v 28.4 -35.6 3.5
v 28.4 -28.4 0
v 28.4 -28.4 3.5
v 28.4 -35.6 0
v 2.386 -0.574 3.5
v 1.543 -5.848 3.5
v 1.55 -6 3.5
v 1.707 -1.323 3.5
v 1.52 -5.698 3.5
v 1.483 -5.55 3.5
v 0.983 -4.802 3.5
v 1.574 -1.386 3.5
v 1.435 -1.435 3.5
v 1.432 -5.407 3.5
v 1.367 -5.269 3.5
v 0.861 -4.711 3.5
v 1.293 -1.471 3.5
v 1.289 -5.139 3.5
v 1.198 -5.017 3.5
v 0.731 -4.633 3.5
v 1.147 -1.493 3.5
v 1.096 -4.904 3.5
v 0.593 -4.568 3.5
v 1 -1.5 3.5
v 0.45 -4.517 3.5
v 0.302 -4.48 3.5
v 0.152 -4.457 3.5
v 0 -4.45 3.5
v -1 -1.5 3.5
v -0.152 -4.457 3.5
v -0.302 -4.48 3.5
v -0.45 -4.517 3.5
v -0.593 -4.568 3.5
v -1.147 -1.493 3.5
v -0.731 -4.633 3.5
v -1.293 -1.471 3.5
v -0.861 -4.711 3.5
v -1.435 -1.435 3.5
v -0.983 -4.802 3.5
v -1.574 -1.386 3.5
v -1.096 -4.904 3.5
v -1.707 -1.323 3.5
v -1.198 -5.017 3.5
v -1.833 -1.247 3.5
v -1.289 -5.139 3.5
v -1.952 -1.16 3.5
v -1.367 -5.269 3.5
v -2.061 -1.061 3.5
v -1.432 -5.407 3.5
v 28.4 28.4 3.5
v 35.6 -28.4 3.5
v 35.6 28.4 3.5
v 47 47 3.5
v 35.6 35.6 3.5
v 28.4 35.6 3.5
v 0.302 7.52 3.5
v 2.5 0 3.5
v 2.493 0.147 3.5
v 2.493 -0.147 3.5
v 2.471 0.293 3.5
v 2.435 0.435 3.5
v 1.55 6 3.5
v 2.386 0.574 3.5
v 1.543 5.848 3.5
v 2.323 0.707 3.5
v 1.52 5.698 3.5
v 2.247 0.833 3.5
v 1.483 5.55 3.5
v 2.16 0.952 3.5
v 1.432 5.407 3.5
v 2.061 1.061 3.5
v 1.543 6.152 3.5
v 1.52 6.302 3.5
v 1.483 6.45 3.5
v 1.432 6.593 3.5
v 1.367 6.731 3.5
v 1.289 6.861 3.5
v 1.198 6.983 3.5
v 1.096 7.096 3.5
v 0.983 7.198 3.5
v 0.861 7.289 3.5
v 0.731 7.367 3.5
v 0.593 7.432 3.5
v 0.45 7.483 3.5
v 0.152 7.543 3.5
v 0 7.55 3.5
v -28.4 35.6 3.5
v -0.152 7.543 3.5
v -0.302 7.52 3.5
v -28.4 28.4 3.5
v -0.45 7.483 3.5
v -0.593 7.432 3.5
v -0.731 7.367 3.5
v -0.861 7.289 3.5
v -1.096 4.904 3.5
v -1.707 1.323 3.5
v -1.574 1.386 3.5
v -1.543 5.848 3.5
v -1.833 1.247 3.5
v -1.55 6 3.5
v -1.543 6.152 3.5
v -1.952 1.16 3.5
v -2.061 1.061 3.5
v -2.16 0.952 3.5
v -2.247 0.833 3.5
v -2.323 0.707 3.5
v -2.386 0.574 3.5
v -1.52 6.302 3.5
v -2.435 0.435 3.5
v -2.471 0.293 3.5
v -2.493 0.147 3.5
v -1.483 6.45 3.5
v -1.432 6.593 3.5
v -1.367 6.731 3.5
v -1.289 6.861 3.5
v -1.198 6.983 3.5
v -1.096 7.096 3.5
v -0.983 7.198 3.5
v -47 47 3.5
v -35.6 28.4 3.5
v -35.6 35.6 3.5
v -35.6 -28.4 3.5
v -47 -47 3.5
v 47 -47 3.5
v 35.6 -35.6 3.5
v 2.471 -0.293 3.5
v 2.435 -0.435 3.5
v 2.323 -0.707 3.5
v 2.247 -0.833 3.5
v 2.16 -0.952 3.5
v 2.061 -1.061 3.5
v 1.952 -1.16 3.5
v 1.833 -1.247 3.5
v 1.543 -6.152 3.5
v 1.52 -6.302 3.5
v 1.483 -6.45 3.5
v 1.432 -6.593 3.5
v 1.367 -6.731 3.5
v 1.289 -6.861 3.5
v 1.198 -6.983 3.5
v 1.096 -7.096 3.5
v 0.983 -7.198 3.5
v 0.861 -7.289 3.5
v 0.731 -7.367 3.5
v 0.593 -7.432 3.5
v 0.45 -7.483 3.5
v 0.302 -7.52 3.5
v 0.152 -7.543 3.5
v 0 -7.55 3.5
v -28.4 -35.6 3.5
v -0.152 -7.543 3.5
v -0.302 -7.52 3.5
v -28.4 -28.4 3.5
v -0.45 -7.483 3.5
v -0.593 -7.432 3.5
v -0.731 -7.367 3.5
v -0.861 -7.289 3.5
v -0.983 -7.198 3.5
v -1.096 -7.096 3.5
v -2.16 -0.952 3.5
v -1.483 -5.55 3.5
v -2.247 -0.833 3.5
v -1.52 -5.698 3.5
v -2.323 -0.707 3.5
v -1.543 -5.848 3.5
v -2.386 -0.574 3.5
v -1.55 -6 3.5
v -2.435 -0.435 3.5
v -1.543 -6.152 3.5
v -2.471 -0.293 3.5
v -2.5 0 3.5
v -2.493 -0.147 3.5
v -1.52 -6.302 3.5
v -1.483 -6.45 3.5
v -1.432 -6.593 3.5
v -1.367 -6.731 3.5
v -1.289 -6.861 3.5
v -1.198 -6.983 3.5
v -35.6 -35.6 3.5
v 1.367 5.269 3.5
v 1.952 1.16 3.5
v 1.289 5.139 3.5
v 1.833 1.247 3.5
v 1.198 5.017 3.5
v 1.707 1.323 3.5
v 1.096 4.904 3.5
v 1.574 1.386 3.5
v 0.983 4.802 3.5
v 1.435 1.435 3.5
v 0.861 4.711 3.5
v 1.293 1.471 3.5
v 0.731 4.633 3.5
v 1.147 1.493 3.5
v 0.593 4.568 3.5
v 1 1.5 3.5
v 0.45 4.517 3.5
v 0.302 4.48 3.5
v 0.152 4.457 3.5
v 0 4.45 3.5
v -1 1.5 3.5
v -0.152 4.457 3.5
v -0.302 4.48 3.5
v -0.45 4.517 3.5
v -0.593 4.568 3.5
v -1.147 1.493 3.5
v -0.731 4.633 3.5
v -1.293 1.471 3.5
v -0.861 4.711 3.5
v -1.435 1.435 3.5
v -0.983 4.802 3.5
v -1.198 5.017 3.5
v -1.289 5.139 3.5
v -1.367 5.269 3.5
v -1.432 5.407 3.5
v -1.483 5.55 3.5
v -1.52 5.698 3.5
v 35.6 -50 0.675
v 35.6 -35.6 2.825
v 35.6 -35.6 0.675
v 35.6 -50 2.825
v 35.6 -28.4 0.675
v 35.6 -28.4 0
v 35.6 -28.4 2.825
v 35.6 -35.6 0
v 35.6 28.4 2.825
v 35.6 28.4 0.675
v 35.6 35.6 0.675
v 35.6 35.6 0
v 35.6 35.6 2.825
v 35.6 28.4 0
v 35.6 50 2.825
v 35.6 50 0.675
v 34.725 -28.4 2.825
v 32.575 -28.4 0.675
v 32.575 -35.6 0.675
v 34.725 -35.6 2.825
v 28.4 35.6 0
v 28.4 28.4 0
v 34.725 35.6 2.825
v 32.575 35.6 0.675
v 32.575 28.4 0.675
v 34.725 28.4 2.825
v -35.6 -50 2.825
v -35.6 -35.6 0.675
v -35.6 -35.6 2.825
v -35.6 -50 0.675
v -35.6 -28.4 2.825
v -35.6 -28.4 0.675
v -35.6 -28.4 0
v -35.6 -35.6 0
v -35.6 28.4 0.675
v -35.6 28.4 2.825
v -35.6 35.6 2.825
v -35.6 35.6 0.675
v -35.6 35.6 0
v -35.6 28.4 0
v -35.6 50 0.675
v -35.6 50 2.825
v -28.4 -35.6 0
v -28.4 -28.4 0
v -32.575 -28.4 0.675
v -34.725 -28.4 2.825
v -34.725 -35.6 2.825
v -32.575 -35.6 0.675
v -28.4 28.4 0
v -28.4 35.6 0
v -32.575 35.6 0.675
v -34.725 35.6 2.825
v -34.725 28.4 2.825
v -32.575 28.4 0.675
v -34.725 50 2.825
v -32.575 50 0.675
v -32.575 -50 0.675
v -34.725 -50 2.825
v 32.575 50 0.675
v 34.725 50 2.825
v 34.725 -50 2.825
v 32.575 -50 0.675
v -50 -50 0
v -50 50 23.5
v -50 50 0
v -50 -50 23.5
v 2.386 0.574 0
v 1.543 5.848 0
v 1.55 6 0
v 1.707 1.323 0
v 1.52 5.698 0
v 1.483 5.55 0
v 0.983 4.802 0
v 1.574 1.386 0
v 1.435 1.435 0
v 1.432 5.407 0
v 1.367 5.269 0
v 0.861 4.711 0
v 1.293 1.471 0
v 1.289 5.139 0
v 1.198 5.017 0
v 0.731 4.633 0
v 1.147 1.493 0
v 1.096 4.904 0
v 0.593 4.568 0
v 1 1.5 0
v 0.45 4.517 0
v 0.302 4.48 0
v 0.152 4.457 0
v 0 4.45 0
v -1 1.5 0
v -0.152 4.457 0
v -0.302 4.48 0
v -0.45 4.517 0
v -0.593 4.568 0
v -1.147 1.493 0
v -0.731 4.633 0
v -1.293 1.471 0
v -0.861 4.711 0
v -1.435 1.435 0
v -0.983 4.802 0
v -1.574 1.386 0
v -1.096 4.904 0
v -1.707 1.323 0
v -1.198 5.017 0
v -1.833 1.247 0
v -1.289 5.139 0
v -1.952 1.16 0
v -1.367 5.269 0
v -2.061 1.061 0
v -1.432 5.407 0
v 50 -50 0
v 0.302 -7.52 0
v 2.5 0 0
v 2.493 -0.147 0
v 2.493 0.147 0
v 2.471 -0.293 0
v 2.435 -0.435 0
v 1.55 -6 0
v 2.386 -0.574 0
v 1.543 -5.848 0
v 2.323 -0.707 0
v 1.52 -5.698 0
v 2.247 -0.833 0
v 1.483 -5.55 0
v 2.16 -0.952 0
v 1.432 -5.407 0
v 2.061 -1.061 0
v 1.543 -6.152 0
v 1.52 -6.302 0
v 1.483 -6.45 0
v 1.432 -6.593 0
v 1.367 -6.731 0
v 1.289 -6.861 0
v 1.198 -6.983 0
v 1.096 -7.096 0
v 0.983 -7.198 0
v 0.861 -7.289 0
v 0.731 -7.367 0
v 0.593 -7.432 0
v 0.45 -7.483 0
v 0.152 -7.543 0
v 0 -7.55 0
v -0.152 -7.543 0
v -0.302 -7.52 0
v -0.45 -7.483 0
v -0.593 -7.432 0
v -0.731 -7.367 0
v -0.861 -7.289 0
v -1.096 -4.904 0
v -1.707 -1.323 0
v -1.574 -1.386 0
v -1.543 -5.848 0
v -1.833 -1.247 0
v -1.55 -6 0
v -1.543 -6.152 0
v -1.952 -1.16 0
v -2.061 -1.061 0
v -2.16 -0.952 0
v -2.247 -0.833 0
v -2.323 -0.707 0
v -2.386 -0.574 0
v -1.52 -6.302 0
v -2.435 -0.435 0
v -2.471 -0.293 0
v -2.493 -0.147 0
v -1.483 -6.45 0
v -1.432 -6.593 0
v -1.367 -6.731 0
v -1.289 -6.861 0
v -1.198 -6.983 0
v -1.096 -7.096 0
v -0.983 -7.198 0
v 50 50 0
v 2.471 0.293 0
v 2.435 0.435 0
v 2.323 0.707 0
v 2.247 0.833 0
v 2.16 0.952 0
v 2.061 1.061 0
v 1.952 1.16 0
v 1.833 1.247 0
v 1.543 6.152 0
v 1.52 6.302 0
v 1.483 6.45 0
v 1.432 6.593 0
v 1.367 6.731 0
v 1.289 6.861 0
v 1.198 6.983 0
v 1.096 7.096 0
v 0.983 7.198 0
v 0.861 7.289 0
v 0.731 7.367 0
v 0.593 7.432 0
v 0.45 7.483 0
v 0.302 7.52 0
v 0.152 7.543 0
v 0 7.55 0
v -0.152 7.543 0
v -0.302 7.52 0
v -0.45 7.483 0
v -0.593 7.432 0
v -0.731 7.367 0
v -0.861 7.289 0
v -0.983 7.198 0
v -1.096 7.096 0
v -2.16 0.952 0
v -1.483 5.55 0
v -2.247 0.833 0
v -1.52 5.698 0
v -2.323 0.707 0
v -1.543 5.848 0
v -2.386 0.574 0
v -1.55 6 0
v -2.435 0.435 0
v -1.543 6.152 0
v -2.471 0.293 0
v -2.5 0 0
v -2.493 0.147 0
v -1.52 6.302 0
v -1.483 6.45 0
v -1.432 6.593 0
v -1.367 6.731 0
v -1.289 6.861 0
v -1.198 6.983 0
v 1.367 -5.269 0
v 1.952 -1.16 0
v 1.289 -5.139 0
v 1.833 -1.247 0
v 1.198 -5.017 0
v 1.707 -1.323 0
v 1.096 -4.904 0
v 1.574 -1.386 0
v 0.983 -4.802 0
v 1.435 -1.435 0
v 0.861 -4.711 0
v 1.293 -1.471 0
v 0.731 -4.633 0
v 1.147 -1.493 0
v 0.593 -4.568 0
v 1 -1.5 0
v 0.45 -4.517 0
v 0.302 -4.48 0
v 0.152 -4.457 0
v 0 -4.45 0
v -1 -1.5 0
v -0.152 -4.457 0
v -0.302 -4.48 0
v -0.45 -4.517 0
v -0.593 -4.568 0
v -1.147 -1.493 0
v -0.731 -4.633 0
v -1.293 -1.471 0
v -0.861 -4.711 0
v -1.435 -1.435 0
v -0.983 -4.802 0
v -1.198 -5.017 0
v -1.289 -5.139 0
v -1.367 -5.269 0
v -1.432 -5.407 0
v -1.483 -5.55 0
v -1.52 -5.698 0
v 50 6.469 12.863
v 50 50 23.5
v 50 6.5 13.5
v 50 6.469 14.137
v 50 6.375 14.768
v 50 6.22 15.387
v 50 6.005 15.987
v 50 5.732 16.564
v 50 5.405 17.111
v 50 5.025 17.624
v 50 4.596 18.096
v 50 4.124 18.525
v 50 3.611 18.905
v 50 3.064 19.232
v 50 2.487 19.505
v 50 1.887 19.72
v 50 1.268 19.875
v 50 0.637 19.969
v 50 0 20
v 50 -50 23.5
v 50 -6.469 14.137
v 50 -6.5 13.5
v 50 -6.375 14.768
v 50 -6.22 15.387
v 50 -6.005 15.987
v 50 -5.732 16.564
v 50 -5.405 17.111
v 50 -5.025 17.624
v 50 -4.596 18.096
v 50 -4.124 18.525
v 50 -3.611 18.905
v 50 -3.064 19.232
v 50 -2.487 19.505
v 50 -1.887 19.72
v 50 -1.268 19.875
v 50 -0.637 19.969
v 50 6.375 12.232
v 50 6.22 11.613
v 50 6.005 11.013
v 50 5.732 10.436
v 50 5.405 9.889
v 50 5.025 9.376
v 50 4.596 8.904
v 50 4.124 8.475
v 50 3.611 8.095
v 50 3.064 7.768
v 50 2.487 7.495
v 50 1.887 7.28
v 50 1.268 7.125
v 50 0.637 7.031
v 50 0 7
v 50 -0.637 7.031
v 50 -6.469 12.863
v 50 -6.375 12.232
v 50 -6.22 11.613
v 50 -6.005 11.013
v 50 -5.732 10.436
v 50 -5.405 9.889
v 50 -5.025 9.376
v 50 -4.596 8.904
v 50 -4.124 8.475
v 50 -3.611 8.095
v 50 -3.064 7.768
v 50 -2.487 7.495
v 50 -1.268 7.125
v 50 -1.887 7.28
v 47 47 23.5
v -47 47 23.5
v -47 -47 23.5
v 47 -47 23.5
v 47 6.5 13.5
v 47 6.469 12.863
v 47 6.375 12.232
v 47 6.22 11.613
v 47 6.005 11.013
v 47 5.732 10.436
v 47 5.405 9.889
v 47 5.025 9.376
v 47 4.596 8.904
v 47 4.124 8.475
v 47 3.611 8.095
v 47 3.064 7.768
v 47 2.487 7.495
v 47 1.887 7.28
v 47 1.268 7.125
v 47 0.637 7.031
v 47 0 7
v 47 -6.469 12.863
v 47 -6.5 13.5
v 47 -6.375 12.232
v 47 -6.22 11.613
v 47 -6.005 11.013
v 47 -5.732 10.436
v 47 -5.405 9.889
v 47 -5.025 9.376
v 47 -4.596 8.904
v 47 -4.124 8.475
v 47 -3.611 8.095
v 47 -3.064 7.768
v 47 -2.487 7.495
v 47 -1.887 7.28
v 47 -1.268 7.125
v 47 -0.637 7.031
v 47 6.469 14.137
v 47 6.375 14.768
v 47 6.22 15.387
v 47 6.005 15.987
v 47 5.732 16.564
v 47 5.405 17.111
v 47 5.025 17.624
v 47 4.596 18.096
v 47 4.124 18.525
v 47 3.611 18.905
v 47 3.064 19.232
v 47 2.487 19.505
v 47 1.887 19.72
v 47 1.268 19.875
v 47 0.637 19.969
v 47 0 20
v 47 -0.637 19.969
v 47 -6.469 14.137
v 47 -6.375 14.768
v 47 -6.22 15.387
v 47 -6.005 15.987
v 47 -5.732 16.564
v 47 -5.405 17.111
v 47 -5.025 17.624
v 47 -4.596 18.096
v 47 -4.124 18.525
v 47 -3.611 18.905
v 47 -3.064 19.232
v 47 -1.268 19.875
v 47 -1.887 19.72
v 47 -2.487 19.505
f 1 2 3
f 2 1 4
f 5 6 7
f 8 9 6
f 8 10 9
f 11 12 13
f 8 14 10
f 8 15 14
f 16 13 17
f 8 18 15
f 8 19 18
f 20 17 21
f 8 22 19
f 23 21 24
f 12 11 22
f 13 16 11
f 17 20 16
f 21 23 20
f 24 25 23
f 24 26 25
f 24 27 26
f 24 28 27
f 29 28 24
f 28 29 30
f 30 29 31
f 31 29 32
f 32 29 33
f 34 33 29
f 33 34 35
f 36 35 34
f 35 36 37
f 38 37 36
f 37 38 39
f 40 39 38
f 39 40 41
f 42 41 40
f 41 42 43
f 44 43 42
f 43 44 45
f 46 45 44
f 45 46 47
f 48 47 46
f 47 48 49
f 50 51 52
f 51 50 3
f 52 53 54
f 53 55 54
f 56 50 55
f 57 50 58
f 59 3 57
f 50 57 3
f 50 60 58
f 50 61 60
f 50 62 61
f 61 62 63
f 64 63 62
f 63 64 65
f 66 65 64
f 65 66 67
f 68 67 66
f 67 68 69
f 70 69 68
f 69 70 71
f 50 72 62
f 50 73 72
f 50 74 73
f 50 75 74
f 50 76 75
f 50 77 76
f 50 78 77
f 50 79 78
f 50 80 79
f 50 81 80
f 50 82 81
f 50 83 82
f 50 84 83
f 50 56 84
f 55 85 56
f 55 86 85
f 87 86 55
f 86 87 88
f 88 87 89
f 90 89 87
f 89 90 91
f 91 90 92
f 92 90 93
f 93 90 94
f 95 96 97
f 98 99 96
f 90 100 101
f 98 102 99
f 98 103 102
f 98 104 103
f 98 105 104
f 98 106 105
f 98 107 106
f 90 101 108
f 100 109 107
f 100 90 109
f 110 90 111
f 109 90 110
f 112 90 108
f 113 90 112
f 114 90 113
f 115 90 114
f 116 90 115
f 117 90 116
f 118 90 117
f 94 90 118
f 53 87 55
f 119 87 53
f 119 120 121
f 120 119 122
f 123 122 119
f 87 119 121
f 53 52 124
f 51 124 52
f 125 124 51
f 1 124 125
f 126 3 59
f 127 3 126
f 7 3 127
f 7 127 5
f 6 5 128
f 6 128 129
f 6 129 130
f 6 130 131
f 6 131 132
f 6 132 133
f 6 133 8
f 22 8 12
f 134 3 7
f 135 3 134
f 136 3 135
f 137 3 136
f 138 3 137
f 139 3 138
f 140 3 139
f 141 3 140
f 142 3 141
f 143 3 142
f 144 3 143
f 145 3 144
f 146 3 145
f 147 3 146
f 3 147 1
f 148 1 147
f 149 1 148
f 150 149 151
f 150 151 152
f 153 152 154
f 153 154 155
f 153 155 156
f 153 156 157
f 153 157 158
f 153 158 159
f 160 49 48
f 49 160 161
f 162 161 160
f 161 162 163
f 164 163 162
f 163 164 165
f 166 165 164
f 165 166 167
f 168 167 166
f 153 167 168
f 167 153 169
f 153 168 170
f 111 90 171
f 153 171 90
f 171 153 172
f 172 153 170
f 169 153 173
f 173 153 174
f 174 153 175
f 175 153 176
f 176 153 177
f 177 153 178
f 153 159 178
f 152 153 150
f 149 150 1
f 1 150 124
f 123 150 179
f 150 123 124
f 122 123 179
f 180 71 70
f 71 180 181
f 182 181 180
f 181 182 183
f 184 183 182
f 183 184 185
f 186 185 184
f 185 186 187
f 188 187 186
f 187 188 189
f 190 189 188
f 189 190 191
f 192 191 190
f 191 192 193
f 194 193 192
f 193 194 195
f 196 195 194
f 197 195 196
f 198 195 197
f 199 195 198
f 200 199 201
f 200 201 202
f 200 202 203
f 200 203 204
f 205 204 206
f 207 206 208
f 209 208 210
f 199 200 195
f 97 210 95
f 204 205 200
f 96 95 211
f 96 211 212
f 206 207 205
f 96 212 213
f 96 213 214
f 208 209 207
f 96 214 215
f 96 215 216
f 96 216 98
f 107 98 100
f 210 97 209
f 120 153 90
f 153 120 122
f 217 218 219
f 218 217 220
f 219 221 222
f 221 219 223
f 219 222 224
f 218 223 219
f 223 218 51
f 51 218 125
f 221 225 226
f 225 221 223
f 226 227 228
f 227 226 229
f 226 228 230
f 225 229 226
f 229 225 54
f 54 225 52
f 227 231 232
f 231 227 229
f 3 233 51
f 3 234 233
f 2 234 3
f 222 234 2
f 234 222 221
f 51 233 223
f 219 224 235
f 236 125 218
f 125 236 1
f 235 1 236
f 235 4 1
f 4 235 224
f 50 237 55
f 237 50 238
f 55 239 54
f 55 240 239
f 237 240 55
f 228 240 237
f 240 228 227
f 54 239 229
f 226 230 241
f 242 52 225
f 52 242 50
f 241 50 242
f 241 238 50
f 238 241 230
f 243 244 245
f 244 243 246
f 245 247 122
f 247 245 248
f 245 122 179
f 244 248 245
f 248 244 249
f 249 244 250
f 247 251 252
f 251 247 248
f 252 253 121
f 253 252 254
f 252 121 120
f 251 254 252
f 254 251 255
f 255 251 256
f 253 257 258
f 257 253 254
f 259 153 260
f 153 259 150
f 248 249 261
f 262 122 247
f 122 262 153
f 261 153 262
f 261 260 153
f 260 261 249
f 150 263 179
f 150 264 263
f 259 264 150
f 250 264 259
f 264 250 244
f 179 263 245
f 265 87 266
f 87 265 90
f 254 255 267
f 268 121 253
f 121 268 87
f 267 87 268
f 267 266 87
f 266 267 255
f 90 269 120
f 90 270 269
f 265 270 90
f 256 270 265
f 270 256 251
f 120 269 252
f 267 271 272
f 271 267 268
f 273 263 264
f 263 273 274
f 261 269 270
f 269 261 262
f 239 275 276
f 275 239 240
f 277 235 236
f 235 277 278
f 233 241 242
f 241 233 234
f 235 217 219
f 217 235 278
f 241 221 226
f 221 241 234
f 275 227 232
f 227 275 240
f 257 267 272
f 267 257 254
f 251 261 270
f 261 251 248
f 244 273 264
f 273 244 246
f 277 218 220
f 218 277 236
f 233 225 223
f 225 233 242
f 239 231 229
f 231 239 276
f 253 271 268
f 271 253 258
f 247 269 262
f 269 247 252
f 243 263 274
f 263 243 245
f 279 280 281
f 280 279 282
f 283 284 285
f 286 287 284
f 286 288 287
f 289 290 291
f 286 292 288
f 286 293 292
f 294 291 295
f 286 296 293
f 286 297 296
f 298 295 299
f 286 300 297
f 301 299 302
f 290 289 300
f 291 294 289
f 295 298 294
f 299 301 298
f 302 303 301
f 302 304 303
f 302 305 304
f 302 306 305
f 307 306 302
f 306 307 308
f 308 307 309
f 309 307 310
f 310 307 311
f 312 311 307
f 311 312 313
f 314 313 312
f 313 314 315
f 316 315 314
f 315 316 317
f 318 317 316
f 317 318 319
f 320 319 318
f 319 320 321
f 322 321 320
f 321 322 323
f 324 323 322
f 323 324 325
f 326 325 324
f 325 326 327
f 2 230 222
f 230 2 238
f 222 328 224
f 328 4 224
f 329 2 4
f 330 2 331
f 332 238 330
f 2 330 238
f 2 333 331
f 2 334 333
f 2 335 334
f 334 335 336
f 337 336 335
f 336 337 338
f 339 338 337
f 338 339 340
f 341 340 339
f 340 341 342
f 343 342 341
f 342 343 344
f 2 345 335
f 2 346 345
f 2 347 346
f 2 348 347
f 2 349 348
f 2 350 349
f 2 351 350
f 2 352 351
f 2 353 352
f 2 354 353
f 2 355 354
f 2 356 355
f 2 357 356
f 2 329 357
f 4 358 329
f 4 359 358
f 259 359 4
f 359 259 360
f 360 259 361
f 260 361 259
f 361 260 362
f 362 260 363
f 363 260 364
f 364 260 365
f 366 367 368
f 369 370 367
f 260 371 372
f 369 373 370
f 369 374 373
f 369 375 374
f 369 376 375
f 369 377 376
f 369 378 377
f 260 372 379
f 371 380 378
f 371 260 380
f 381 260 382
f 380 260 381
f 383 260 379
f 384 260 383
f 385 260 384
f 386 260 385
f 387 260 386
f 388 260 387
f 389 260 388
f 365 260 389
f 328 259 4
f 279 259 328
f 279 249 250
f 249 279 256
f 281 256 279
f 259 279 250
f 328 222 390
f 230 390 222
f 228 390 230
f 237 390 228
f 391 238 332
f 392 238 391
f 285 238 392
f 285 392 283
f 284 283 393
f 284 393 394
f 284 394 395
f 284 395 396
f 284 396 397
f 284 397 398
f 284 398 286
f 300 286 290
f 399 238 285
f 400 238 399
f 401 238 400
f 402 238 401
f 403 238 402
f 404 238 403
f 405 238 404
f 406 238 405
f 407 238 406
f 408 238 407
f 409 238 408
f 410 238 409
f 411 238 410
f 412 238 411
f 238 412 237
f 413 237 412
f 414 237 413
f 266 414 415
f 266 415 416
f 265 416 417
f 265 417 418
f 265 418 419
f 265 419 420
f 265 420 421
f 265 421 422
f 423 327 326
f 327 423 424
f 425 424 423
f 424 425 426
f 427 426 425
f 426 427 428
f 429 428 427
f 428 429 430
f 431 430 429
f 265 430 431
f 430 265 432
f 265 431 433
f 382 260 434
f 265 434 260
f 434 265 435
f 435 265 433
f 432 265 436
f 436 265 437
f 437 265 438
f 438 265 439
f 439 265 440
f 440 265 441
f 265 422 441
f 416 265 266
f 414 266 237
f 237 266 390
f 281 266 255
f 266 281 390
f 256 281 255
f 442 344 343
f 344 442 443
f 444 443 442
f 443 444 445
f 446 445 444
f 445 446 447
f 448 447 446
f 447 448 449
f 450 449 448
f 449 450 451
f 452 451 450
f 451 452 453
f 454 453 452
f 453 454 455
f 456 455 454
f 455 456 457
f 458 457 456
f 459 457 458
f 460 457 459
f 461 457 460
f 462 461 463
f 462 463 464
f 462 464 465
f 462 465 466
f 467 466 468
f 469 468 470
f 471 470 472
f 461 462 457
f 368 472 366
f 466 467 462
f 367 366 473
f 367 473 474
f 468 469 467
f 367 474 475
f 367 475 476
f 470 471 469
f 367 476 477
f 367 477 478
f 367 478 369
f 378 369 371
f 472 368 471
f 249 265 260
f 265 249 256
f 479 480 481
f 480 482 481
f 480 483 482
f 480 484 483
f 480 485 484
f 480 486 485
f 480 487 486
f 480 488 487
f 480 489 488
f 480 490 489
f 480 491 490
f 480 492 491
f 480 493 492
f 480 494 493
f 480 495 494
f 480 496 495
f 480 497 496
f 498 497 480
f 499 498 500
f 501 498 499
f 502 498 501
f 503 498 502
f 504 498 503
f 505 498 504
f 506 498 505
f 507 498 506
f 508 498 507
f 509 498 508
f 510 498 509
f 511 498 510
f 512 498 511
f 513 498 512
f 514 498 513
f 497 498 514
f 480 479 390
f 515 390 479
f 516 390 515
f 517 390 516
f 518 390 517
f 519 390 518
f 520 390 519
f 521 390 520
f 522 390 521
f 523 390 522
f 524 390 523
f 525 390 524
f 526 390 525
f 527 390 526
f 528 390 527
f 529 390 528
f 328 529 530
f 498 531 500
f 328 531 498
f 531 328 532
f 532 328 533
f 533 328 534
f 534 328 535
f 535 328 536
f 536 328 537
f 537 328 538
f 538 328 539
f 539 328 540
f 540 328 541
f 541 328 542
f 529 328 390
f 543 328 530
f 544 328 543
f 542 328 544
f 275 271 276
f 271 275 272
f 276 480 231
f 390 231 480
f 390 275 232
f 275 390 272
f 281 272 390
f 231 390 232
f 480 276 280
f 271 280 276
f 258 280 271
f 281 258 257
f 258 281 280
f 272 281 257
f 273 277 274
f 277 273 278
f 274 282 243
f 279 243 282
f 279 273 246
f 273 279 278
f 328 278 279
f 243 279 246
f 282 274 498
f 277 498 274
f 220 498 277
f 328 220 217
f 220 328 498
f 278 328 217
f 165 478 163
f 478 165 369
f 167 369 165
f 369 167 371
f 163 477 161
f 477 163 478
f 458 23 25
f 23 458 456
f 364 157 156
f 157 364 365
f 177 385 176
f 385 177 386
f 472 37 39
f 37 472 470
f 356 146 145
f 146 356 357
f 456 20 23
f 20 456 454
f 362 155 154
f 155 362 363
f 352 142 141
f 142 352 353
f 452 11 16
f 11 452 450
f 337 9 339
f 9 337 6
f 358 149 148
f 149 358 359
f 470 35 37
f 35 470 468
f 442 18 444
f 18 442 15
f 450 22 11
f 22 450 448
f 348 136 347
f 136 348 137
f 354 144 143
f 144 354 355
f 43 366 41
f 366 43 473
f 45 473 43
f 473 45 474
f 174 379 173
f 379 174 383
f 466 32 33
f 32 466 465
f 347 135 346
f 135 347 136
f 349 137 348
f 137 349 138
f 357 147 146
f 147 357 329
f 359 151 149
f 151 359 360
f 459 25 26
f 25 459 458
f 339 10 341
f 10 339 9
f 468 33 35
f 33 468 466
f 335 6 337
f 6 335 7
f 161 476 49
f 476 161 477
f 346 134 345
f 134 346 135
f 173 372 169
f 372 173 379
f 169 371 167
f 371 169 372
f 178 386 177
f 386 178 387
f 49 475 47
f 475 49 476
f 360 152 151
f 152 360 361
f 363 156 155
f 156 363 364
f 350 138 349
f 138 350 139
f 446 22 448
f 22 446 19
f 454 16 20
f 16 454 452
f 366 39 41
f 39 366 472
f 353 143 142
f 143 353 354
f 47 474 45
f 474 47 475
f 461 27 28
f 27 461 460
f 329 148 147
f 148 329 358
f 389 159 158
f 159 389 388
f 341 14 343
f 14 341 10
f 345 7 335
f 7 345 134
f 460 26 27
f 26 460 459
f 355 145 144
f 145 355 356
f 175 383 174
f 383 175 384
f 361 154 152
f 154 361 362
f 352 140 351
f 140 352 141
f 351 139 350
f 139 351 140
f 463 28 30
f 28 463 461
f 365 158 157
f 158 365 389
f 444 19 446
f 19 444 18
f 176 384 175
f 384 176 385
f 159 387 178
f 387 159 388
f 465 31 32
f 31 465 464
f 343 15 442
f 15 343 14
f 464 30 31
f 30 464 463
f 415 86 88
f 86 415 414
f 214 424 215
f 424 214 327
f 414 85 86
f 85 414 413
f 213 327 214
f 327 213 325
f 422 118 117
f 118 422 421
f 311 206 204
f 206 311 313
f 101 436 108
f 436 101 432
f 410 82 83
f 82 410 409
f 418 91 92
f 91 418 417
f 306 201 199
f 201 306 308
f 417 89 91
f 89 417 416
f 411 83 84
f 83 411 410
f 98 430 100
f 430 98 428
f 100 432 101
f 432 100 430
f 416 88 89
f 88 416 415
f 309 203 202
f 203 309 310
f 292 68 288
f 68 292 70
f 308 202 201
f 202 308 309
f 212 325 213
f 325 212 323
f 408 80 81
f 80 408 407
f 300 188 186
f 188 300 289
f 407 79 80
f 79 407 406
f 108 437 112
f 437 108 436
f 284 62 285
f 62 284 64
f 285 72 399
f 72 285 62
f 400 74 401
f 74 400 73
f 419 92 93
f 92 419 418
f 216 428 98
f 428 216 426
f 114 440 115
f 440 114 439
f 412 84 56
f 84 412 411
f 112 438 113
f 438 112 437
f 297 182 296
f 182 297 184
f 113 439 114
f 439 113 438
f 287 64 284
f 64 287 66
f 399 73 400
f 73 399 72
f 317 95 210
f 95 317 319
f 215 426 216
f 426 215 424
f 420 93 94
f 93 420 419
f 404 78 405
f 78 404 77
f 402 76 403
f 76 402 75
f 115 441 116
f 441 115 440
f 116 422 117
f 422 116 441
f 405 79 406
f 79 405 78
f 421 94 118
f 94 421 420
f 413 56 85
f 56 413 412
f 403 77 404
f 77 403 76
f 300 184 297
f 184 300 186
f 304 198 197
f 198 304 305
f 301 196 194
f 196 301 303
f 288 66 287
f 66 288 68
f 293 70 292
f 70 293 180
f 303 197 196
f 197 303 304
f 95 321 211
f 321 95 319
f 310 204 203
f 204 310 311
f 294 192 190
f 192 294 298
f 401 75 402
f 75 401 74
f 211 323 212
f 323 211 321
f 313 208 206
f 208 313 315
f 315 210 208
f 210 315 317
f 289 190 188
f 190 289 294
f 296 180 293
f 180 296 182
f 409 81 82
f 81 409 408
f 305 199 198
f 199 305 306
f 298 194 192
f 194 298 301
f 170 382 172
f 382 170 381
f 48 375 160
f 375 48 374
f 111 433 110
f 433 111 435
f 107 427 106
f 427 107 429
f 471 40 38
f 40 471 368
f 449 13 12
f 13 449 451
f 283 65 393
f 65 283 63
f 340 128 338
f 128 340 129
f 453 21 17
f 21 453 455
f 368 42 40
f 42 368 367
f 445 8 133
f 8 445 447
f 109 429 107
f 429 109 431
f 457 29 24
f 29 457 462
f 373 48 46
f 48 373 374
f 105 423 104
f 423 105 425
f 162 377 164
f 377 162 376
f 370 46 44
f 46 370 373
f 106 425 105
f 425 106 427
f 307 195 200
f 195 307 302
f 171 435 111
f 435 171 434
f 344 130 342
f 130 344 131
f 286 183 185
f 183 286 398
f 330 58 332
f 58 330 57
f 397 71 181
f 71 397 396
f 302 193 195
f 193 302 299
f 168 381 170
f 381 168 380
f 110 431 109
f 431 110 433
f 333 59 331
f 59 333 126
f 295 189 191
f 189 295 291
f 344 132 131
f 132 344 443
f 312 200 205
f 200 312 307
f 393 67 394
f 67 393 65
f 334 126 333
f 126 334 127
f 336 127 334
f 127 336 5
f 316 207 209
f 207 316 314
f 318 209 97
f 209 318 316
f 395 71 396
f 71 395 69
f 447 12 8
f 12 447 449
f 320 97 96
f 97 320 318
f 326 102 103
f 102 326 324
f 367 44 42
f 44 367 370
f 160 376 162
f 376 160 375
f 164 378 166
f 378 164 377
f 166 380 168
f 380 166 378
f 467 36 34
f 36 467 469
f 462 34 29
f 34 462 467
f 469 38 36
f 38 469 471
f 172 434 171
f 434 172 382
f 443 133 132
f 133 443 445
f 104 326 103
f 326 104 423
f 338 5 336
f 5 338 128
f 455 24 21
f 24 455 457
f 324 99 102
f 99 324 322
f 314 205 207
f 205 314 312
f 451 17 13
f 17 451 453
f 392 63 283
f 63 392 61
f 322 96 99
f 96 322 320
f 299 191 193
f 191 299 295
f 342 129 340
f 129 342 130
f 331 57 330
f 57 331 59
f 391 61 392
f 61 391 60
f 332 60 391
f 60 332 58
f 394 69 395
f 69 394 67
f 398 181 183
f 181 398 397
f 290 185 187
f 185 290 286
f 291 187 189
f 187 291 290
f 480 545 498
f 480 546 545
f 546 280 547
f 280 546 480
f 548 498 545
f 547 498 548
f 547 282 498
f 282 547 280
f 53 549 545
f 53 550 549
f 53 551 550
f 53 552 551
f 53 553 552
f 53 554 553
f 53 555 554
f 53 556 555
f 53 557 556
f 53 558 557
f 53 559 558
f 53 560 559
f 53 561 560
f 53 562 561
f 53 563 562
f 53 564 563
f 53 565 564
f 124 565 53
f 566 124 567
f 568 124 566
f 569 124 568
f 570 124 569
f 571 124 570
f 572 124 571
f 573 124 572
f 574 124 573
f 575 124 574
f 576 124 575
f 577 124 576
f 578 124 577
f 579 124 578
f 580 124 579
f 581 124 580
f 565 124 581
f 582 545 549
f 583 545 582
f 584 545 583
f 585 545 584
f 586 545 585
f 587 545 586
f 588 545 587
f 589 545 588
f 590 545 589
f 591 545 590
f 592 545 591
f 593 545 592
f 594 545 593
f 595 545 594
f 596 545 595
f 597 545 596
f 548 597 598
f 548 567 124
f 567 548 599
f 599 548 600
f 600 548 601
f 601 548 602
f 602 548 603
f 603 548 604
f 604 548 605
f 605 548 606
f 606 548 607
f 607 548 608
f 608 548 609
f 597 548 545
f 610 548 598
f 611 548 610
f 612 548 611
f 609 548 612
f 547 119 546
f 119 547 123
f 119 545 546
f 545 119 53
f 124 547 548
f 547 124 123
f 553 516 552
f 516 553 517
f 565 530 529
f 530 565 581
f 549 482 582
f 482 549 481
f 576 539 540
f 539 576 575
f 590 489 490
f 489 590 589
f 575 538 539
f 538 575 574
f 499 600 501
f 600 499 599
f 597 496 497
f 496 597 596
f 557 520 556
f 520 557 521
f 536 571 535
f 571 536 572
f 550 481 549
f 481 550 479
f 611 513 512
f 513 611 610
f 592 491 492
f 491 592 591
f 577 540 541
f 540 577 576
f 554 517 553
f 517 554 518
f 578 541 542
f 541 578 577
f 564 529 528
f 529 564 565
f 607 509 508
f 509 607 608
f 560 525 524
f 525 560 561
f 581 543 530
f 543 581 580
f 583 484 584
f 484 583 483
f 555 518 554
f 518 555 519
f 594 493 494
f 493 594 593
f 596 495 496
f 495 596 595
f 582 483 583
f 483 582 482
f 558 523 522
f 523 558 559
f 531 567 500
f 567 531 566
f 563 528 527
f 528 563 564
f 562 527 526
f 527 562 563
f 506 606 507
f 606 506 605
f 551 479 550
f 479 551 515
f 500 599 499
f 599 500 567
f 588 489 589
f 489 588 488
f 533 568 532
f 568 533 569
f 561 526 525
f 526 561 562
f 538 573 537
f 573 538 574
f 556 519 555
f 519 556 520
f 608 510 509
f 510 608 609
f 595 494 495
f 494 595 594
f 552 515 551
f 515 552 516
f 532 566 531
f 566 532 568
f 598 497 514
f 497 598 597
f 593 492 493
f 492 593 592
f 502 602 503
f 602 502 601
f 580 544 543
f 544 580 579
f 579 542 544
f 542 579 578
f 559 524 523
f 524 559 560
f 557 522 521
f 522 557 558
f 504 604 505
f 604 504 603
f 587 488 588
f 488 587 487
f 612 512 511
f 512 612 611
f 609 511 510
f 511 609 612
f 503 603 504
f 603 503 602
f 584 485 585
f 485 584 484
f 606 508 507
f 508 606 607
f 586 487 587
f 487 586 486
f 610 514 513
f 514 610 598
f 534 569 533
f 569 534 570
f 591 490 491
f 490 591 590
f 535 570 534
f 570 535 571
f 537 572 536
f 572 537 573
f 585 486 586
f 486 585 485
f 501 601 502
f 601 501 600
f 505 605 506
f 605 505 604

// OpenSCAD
/**
 * A shoji-lamp base for 12V lightbulbs with the G4 socket.
 */

W=64;
W2=100;
H=90;
T=1.5;
B=4;
Q=7;
H1=7;
HR=12;

main();

module main() {
    rotate([0,180,0])
    translate([0,0,-H1/2])
    union() {
        base();
        rotate([0,180,0]) rim();
    }
}

/**
 * Base plate with all holes.
 */
module base() {
    difference() {
        union() {
            difference() {
                cube_center([W2,W2,H1/2]);

                for(s=[-1,1])
                for(t=[-1,1])
                translate([s*W/2,t*W/2,0]) {
                    cube_center([H1+0.2,H1+0.2,H1+0.2]);
                }

                // Lock-pin triangles
                difference() {
                    for(s=[-1,1])
                    scale([s,1,1])
                    translate([-W/2,0,0]) {

                        translate([-H1/2-0.1,0,H1/2])
                        scale([H1/2+0.2,W2*2,H1/2+0.2])
                        rotate([-90,0,0])
                        triangle();
                    }

                    translate([0,0,1.5*H1/4+0.2])
                    cube_center([200,200,H1/4]);

                    translate([0,0,0])
                    cube_center([200,200,H1/8-0.2]);
                }
            }
        }

        //
        for(y=[-6,6]) {
            translate([0,y,0])
            cylinder(d=3.1,h=H1/2,$fn=64);
        }

        hull() {
            for(x=[-1,1]) {
                translate([x,0,0])
                cylinder(d=3,h=H1/2,$fn=64);
            }
        }
    }
}


module cube_center(dims,r=0) {
    if(r==0) {
        translate([-dims[0]/2, -dims[1]/2, 0])
        cube(dims);
    } else {

        minkowski() {
            translate([-dims[0]/2+r, -dims[1]/2+r, 0])
            cube([dims[0]-2*r,dims[1]-2*r,dims[2]]);
            cylinder(r=r,h=0.00001,$fn=32);
        }
    }
}

module triangle() {
    linear_extrude(height = 1, center = true, convexity = 10, twist = 0)
    polygon(points=[[0,0],[1,0],[0,1]]);
}

module rim() {
    difference() {
        cube_center([W2,W2,20]);
        cube_center([W2-6,W2-6,20]);

        // Mount hole for a power-jack.
        translate([W2/2-3,0,10])
        rotate([0,90,0])
        cylinder(d=13,h=3,$fn=64);
    }
}
